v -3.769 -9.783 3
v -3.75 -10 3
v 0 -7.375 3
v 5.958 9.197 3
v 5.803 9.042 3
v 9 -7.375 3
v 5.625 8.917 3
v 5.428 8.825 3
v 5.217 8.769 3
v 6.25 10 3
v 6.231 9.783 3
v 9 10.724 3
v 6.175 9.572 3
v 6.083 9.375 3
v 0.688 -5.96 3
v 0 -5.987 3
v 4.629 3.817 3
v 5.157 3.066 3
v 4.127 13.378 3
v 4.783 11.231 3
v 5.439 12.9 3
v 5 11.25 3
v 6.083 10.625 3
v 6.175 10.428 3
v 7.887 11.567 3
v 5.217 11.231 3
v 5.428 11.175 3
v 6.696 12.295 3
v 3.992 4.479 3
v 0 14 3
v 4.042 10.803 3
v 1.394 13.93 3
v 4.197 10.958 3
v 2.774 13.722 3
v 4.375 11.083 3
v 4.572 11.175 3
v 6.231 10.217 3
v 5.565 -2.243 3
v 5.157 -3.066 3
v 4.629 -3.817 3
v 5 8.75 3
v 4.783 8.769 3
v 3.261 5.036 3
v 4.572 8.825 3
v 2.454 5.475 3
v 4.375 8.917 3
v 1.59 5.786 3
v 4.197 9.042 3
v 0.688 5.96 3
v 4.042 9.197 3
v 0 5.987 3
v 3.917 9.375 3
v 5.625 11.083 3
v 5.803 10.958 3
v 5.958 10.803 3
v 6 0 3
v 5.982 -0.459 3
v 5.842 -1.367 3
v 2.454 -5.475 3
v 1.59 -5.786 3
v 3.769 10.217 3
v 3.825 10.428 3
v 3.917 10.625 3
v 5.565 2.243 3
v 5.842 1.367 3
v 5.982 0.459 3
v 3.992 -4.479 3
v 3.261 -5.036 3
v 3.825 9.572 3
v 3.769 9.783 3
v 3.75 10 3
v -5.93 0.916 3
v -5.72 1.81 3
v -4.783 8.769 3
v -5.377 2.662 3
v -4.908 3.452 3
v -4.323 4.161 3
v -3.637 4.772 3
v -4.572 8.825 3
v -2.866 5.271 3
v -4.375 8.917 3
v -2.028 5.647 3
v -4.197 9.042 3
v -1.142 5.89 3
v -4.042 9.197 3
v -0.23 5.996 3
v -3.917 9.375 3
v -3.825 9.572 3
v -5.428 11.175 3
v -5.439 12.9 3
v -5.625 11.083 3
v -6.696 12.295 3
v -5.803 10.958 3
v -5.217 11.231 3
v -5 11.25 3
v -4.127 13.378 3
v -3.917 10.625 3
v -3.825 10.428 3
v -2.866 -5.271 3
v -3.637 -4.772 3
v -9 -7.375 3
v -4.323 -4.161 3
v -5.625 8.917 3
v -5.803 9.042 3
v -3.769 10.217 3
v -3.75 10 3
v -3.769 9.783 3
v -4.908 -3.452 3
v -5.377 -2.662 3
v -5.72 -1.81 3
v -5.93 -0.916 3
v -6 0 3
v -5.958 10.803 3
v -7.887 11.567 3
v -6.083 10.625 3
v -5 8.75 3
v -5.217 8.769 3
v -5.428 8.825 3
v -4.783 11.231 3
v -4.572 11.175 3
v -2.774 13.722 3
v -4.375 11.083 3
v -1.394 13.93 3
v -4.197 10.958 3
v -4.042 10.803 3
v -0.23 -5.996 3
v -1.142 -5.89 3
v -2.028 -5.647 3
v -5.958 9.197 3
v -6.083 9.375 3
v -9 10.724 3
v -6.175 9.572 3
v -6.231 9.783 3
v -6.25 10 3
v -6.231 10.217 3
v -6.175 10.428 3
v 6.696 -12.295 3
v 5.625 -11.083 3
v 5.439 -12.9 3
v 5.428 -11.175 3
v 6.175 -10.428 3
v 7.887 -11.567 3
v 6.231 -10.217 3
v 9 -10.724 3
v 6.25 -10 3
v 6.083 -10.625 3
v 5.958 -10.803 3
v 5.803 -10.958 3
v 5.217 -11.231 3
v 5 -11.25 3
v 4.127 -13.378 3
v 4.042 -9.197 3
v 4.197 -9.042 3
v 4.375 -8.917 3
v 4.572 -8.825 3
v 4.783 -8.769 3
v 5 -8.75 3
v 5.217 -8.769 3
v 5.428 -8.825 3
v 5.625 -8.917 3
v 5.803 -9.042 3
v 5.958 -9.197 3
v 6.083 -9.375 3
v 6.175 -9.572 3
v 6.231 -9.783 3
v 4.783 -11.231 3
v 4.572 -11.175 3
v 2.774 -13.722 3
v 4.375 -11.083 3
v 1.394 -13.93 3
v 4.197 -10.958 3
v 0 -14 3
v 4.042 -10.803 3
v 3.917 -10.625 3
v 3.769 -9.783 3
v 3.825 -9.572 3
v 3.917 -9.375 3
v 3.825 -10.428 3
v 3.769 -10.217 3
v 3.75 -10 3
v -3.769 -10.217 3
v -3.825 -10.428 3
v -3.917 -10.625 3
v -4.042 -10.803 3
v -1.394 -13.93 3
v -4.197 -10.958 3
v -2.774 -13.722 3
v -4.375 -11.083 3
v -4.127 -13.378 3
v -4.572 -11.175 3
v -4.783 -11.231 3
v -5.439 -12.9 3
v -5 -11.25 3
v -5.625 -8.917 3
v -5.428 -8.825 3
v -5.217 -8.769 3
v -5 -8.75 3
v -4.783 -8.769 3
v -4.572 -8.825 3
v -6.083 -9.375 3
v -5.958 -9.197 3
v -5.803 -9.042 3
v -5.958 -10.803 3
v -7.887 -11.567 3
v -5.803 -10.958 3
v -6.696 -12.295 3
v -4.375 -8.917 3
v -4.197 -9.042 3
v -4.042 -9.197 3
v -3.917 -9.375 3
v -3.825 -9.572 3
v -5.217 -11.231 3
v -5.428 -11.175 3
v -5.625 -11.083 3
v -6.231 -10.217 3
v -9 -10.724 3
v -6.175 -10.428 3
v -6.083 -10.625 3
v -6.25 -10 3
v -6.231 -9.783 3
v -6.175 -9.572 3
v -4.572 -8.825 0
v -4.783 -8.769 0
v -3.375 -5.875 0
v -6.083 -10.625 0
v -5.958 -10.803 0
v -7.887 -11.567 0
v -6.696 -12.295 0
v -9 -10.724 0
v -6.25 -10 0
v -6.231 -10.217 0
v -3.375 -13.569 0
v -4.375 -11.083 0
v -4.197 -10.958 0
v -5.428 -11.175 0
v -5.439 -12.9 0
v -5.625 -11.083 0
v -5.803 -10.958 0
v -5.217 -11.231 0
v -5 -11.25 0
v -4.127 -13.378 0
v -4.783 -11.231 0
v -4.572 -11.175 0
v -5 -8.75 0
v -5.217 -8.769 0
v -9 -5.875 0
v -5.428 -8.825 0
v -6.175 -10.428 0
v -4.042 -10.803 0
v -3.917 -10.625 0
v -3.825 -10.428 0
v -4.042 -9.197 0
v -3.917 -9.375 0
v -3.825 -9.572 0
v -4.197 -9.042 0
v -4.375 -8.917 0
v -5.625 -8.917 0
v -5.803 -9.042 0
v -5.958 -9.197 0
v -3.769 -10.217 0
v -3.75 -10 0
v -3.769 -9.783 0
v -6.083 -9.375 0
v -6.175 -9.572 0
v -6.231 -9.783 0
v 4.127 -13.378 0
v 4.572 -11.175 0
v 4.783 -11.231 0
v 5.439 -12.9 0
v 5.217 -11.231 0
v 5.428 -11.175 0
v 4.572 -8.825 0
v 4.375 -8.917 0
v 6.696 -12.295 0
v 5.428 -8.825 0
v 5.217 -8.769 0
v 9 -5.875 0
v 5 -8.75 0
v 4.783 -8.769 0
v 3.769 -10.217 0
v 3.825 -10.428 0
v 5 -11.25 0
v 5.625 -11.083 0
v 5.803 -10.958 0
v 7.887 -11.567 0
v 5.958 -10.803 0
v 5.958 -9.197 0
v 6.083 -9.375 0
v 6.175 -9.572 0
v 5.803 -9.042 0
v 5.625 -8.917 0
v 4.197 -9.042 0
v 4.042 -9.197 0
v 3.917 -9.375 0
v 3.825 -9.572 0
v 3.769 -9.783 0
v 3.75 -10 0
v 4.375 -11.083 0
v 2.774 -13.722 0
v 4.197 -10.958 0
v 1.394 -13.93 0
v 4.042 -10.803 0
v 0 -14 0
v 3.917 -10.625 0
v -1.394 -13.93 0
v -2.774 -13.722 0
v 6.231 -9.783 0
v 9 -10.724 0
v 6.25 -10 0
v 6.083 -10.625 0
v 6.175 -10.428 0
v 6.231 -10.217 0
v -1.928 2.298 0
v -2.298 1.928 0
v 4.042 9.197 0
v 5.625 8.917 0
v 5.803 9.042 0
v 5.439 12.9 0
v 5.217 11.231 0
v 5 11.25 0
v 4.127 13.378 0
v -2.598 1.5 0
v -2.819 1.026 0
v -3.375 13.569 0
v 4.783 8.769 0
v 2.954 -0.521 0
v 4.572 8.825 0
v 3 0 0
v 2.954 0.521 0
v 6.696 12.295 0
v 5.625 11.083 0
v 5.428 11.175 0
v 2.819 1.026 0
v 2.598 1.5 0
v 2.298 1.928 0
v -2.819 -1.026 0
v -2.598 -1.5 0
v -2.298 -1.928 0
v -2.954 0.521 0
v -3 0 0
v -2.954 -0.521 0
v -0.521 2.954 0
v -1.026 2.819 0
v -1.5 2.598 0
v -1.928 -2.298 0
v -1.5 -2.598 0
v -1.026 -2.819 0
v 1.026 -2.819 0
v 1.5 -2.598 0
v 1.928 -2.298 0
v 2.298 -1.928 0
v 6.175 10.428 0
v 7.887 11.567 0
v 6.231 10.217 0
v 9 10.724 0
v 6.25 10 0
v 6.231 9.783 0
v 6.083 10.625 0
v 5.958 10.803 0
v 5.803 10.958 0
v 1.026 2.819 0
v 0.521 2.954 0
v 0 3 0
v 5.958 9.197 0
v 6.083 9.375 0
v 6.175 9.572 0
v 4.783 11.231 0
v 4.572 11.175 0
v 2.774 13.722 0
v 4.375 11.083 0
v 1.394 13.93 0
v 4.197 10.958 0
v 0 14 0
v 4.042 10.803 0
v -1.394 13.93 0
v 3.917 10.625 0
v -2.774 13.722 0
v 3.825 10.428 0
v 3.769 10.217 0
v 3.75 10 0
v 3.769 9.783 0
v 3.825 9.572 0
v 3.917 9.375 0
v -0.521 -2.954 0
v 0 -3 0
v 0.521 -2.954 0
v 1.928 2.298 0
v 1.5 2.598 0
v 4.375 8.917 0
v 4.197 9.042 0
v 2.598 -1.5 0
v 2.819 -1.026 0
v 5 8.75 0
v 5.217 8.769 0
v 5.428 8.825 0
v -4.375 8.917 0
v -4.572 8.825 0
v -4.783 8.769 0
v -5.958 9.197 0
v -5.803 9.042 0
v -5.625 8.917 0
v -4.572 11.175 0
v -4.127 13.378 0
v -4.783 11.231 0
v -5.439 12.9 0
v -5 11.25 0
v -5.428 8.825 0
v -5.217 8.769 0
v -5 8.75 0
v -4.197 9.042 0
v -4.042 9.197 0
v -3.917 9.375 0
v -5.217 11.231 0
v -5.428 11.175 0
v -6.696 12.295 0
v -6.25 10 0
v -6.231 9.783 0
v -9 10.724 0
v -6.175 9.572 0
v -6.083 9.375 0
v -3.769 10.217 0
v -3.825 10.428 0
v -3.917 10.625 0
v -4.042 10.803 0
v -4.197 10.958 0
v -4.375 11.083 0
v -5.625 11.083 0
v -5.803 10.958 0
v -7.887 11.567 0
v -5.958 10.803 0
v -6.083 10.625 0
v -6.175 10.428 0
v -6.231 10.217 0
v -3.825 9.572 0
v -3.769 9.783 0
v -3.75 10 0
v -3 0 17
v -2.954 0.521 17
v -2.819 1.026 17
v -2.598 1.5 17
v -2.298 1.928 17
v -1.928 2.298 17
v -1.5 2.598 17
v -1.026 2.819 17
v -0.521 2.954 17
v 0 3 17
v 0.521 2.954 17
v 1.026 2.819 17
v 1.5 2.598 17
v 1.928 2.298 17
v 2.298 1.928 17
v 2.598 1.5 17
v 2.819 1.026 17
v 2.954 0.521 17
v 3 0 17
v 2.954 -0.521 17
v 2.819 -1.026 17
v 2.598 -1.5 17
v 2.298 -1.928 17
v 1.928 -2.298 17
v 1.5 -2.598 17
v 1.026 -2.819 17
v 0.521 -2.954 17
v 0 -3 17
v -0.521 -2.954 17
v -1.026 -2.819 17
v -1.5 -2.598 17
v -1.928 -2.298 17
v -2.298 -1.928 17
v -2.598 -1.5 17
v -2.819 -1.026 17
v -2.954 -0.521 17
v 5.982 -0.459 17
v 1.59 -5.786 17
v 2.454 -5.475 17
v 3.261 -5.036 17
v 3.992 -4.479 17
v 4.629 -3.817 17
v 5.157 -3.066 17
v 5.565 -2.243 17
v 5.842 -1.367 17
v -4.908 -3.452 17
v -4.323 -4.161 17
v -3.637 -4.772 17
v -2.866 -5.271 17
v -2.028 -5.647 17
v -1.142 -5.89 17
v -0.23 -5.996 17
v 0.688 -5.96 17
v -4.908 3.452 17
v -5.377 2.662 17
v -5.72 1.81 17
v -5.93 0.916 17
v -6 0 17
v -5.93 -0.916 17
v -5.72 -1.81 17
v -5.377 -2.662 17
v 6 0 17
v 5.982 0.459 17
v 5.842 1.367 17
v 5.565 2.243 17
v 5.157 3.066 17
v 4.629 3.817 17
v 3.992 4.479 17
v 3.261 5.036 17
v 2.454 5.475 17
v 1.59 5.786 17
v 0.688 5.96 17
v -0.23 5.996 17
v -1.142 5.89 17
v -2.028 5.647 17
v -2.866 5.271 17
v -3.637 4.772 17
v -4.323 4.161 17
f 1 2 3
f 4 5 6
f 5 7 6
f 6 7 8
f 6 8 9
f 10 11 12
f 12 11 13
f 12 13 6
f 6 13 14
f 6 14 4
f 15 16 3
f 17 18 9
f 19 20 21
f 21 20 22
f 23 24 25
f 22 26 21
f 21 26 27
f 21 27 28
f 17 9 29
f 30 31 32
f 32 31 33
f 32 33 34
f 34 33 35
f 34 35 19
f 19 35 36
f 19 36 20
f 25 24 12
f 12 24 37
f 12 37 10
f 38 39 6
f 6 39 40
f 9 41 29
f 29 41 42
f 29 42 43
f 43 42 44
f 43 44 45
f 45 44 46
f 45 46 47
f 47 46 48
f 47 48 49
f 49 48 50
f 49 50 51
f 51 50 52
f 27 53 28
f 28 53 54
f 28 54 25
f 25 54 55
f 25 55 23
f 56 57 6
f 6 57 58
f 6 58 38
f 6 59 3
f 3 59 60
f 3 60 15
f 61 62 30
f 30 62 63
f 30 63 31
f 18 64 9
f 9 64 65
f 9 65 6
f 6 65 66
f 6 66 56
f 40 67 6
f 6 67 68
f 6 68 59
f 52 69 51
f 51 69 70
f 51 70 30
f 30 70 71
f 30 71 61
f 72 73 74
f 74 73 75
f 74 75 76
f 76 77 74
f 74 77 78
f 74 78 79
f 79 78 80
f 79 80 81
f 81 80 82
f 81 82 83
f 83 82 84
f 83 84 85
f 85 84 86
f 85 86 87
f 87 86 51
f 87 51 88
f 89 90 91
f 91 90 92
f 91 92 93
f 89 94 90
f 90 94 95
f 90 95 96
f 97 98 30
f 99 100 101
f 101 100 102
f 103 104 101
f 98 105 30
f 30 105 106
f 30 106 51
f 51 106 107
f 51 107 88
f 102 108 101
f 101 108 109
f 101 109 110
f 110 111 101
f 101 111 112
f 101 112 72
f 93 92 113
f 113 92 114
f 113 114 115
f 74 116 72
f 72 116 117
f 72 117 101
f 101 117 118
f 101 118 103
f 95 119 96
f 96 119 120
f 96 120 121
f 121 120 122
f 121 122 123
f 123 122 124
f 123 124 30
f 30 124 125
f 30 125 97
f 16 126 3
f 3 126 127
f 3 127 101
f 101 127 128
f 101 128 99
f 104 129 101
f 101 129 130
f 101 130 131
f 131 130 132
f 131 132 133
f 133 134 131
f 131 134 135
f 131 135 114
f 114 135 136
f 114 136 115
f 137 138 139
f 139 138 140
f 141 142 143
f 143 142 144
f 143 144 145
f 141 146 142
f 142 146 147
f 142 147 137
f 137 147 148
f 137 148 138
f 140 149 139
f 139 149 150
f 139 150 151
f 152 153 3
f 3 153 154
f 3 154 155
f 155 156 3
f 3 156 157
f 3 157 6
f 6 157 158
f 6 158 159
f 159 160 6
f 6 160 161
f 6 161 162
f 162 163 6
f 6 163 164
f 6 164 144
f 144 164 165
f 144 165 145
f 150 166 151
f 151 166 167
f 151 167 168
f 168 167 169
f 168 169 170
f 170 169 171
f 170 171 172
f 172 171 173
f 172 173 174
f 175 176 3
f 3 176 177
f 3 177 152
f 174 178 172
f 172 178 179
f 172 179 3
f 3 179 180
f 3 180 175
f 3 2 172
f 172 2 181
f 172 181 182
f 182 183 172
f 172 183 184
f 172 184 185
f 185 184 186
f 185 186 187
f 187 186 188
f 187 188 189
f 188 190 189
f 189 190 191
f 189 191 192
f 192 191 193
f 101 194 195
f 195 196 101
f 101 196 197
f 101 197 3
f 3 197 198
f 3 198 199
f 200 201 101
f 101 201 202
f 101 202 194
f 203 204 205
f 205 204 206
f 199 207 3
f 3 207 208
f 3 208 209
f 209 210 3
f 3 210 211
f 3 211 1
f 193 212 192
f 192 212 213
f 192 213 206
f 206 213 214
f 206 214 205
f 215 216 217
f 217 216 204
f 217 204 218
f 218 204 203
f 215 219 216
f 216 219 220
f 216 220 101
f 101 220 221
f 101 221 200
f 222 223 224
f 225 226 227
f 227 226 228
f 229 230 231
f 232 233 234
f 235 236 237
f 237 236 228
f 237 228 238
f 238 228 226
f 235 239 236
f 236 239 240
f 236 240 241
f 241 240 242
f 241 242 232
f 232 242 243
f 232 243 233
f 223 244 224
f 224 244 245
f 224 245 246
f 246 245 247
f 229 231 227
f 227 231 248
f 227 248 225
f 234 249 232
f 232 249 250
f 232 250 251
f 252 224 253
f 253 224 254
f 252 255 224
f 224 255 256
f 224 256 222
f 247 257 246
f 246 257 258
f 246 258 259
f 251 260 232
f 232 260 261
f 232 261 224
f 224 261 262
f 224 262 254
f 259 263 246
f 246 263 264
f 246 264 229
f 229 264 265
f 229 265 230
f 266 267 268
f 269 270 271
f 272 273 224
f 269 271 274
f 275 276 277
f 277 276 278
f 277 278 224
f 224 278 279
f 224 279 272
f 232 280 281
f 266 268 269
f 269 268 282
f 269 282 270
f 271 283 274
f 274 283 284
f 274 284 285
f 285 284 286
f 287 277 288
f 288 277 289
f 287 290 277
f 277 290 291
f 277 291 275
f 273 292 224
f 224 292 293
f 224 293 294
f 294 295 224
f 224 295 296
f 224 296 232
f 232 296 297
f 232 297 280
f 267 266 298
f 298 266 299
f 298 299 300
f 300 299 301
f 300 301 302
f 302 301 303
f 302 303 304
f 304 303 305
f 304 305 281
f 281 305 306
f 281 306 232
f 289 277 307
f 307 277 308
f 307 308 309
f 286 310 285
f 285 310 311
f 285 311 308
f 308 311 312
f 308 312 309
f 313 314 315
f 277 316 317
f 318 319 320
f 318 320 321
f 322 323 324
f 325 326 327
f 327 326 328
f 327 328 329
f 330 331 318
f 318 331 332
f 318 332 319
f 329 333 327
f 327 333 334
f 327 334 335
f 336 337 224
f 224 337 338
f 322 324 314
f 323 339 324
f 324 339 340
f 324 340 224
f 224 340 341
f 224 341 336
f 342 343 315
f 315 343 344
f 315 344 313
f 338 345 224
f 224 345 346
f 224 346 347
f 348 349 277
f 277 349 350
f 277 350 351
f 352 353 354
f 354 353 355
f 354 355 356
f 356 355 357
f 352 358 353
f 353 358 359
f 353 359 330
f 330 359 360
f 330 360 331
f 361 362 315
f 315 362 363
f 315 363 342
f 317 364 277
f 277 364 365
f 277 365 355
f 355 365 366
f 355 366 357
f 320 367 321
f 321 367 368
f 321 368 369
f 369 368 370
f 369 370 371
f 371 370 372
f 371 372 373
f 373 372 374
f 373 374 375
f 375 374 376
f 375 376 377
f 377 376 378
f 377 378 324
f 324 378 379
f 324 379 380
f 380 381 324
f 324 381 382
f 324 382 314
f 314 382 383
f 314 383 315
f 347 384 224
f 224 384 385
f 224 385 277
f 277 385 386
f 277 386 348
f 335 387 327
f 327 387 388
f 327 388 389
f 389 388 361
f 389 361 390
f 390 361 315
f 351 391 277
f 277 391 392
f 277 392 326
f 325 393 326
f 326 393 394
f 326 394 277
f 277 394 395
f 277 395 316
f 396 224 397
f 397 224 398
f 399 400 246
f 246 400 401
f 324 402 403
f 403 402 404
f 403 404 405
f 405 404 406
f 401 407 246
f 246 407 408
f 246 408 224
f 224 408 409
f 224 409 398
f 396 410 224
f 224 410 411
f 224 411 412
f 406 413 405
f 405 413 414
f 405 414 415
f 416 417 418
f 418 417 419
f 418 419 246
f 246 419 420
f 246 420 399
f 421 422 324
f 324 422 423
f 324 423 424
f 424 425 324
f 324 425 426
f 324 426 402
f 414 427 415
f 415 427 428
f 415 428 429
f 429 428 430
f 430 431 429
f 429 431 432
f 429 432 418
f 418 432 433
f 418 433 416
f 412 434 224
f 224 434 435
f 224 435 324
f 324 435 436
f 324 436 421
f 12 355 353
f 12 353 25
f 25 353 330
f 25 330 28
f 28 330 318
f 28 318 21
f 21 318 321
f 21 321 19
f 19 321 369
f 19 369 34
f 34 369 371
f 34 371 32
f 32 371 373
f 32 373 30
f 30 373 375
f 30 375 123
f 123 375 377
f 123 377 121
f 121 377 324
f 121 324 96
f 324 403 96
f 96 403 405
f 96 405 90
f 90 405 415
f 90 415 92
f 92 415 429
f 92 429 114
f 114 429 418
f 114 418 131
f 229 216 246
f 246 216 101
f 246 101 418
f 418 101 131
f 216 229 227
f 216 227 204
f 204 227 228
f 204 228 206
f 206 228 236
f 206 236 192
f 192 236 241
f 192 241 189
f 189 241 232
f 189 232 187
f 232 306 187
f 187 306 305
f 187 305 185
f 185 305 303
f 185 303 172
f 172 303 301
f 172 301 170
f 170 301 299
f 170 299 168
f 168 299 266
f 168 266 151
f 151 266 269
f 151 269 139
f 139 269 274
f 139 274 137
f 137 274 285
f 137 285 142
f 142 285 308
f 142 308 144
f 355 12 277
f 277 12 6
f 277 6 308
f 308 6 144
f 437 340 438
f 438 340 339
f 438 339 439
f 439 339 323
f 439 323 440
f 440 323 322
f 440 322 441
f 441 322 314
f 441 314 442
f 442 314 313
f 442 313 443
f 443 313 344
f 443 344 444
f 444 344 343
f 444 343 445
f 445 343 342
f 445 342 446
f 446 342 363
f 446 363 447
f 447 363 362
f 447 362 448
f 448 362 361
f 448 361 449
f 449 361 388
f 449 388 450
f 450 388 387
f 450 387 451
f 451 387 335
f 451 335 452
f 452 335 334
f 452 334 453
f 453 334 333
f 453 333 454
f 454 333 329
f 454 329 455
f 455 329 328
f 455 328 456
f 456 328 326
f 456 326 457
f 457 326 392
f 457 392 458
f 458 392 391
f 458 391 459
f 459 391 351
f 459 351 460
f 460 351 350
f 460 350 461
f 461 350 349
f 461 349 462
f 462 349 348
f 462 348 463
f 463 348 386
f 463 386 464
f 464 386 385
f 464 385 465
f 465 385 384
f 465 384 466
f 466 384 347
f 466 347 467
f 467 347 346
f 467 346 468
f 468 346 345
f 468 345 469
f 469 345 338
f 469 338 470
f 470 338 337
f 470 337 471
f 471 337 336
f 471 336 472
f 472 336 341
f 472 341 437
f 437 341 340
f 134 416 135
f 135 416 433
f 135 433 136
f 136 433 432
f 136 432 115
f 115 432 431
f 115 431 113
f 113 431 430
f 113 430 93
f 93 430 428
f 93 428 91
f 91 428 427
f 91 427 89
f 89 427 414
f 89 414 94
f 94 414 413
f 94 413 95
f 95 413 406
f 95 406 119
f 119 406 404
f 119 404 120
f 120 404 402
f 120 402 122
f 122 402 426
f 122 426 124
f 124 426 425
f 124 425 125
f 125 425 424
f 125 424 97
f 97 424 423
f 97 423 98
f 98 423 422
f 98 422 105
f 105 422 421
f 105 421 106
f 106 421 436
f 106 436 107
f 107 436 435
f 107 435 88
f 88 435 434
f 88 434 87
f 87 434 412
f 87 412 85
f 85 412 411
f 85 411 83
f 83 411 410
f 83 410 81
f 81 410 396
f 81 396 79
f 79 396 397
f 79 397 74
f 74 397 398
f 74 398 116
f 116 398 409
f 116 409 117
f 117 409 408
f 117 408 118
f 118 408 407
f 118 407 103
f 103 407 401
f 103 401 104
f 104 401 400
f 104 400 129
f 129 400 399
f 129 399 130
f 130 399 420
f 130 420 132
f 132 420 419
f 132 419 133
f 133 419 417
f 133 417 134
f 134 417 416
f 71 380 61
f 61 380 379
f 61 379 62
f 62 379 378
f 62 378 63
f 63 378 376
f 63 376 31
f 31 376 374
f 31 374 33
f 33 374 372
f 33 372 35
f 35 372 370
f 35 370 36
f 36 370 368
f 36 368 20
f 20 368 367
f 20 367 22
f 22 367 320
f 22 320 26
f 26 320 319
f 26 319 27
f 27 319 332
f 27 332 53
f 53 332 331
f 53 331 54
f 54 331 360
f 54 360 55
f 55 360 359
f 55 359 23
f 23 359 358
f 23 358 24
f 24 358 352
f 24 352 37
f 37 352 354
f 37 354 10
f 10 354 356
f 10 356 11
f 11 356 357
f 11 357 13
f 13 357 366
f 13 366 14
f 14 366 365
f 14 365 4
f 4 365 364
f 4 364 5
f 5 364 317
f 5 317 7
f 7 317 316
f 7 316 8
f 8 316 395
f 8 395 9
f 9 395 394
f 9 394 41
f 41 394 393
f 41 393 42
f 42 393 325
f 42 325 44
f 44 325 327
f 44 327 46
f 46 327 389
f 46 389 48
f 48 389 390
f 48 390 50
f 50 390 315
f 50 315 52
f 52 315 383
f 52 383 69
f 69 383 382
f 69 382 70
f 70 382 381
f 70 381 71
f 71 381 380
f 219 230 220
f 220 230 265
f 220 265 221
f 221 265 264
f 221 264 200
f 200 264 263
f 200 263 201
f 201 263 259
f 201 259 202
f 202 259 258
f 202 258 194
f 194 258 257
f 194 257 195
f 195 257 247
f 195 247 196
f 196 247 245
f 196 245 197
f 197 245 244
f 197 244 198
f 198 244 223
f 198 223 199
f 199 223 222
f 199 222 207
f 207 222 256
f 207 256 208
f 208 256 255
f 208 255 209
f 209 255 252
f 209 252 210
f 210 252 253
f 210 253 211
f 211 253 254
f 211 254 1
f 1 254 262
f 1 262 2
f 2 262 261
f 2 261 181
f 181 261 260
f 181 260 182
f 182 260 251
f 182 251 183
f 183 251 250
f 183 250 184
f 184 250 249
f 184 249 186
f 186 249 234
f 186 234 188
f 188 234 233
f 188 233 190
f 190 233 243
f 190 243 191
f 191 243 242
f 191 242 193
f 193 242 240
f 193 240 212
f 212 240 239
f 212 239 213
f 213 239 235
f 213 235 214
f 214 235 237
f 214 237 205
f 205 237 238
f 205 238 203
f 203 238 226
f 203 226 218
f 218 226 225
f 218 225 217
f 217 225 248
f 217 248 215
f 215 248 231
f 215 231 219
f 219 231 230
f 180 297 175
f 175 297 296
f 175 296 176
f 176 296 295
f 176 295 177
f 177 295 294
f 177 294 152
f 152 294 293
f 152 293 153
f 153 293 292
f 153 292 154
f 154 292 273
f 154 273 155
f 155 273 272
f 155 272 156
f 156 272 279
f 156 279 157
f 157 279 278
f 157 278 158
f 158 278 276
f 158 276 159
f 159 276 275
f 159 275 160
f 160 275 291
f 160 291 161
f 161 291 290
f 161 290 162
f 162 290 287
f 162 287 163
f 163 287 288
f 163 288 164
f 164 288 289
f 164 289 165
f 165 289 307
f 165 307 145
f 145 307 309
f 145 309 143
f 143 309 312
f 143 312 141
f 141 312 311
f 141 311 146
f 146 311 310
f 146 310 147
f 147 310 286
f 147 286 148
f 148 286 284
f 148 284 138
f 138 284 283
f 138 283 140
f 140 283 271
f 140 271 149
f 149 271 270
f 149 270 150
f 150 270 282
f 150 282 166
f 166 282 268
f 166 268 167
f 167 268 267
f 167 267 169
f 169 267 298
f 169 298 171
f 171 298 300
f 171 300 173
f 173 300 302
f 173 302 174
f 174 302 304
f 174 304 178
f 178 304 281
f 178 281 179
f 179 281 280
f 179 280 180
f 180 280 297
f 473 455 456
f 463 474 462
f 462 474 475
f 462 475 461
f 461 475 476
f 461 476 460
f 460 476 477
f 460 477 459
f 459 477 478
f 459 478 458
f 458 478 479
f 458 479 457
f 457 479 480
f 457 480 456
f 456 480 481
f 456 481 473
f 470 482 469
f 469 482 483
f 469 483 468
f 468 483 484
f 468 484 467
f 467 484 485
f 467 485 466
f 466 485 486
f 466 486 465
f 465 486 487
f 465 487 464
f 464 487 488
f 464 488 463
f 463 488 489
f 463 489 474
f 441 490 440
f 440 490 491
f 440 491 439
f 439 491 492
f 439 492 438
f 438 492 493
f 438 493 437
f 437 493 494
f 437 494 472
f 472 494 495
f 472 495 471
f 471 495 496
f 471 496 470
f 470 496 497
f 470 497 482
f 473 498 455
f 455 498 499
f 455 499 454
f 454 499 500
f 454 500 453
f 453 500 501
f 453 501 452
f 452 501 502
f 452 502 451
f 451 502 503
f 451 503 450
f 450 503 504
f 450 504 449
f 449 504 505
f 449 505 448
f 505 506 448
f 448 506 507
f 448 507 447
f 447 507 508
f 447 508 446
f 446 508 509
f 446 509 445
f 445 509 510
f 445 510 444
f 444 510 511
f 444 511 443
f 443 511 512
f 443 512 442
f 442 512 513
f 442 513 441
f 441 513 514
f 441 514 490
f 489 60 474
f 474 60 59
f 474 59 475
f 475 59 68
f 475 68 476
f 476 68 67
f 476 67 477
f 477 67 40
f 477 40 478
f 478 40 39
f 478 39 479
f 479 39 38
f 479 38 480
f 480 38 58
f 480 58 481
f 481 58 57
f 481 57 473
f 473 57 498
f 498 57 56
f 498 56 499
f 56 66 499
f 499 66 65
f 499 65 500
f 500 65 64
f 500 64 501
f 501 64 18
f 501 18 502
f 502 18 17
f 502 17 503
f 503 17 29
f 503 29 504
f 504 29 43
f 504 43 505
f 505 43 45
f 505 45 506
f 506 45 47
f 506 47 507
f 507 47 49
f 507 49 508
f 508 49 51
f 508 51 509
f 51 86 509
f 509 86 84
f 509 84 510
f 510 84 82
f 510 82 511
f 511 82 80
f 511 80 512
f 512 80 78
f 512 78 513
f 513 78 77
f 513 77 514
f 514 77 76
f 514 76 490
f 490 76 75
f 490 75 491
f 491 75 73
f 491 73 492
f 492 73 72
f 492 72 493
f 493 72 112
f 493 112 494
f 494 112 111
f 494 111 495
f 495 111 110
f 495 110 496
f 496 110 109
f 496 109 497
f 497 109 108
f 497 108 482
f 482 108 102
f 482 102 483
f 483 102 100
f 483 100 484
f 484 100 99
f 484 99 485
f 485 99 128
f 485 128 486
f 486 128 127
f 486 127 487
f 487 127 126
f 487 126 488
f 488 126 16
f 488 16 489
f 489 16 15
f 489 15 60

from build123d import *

# Parameters (mm, degrees)
SKETCH1_R               = 3
SKETCH1_R_2             = 1.25
BOSS_EXTRUDE1_DEPTH     = 3
SKETCH2_R               = 6
SKETCH2_R_2             = 3
LINEARBALLSUPPORT_DEPTH = 14


with BuildPart() as part:
    # Sketch1 → Boss-Extrude1 (new body)
    with BuildSketch(Plane.XY):
        with BuildLine():
            Line((-9, 10.723805295), (-9, -10.723805295))
            ThreePointArc((-9, -10.723805295), (0, -14), (9, -10.723805295))
            Line((9, -10.723805295), (9, 10.723805295))
            ThreePointArc((9, 10.723805295), (0, 14), (-9, 10.723805295))
        make_face()
        Circle(SKETCH1_R, mode=Mode.SUBTRACT)
        with Locations((-5, 10)):
            Circle(SKETCH1_R_2, mode=Mode.SUBTRACT)
        with Locations((5, 10)):
            Circle(SKETCH1_R_2, mode=Mode.SUBTRACT)
        with Locations((-5, -10)):
            Circle(SKETCH1_R_2, mode=Mode.SUBTRACT)
        with Locations((5, -10)):
            Circle(SKETCH1_R_2, mode=Mode.SUBTRACT)
    extrude(amount=BOSS_EXTRUDE1_DEPTH)

    # Sketch2 → LinearBallSupport (add)
    with BuildSketch(Plane.XY.offset(3)):
        Circle(SKETCH2_R)
        Circle(SKETCH2_R_2, mode=Mode.SUBTRACT)
    extrude(amount=LINEARBALLSUPPORT_DEPTH)


solid = part.part
